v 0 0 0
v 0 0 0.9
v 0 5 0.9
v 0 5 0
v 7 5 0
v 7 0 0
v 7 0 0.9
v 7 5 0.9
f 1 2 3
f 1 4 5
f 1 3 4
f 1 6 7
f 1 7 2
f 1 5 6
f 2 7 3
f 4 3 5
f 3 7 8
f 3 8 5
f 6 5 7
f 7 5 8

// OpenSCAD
/* Warning, this is a very basic generator with a lot of approximation 
input data : [VDFN, HPA, 7x5x0.9mm, 6, , A, C04-01227A]
generated by com.zoubworld.electronics.cad.model3d.Basic
Date : Sun Feb 15 10:50:49 CET 2026
*/

//body
color("black")
translate([0,0,0])
cube([7.0,5.0,0.9], center=false);
